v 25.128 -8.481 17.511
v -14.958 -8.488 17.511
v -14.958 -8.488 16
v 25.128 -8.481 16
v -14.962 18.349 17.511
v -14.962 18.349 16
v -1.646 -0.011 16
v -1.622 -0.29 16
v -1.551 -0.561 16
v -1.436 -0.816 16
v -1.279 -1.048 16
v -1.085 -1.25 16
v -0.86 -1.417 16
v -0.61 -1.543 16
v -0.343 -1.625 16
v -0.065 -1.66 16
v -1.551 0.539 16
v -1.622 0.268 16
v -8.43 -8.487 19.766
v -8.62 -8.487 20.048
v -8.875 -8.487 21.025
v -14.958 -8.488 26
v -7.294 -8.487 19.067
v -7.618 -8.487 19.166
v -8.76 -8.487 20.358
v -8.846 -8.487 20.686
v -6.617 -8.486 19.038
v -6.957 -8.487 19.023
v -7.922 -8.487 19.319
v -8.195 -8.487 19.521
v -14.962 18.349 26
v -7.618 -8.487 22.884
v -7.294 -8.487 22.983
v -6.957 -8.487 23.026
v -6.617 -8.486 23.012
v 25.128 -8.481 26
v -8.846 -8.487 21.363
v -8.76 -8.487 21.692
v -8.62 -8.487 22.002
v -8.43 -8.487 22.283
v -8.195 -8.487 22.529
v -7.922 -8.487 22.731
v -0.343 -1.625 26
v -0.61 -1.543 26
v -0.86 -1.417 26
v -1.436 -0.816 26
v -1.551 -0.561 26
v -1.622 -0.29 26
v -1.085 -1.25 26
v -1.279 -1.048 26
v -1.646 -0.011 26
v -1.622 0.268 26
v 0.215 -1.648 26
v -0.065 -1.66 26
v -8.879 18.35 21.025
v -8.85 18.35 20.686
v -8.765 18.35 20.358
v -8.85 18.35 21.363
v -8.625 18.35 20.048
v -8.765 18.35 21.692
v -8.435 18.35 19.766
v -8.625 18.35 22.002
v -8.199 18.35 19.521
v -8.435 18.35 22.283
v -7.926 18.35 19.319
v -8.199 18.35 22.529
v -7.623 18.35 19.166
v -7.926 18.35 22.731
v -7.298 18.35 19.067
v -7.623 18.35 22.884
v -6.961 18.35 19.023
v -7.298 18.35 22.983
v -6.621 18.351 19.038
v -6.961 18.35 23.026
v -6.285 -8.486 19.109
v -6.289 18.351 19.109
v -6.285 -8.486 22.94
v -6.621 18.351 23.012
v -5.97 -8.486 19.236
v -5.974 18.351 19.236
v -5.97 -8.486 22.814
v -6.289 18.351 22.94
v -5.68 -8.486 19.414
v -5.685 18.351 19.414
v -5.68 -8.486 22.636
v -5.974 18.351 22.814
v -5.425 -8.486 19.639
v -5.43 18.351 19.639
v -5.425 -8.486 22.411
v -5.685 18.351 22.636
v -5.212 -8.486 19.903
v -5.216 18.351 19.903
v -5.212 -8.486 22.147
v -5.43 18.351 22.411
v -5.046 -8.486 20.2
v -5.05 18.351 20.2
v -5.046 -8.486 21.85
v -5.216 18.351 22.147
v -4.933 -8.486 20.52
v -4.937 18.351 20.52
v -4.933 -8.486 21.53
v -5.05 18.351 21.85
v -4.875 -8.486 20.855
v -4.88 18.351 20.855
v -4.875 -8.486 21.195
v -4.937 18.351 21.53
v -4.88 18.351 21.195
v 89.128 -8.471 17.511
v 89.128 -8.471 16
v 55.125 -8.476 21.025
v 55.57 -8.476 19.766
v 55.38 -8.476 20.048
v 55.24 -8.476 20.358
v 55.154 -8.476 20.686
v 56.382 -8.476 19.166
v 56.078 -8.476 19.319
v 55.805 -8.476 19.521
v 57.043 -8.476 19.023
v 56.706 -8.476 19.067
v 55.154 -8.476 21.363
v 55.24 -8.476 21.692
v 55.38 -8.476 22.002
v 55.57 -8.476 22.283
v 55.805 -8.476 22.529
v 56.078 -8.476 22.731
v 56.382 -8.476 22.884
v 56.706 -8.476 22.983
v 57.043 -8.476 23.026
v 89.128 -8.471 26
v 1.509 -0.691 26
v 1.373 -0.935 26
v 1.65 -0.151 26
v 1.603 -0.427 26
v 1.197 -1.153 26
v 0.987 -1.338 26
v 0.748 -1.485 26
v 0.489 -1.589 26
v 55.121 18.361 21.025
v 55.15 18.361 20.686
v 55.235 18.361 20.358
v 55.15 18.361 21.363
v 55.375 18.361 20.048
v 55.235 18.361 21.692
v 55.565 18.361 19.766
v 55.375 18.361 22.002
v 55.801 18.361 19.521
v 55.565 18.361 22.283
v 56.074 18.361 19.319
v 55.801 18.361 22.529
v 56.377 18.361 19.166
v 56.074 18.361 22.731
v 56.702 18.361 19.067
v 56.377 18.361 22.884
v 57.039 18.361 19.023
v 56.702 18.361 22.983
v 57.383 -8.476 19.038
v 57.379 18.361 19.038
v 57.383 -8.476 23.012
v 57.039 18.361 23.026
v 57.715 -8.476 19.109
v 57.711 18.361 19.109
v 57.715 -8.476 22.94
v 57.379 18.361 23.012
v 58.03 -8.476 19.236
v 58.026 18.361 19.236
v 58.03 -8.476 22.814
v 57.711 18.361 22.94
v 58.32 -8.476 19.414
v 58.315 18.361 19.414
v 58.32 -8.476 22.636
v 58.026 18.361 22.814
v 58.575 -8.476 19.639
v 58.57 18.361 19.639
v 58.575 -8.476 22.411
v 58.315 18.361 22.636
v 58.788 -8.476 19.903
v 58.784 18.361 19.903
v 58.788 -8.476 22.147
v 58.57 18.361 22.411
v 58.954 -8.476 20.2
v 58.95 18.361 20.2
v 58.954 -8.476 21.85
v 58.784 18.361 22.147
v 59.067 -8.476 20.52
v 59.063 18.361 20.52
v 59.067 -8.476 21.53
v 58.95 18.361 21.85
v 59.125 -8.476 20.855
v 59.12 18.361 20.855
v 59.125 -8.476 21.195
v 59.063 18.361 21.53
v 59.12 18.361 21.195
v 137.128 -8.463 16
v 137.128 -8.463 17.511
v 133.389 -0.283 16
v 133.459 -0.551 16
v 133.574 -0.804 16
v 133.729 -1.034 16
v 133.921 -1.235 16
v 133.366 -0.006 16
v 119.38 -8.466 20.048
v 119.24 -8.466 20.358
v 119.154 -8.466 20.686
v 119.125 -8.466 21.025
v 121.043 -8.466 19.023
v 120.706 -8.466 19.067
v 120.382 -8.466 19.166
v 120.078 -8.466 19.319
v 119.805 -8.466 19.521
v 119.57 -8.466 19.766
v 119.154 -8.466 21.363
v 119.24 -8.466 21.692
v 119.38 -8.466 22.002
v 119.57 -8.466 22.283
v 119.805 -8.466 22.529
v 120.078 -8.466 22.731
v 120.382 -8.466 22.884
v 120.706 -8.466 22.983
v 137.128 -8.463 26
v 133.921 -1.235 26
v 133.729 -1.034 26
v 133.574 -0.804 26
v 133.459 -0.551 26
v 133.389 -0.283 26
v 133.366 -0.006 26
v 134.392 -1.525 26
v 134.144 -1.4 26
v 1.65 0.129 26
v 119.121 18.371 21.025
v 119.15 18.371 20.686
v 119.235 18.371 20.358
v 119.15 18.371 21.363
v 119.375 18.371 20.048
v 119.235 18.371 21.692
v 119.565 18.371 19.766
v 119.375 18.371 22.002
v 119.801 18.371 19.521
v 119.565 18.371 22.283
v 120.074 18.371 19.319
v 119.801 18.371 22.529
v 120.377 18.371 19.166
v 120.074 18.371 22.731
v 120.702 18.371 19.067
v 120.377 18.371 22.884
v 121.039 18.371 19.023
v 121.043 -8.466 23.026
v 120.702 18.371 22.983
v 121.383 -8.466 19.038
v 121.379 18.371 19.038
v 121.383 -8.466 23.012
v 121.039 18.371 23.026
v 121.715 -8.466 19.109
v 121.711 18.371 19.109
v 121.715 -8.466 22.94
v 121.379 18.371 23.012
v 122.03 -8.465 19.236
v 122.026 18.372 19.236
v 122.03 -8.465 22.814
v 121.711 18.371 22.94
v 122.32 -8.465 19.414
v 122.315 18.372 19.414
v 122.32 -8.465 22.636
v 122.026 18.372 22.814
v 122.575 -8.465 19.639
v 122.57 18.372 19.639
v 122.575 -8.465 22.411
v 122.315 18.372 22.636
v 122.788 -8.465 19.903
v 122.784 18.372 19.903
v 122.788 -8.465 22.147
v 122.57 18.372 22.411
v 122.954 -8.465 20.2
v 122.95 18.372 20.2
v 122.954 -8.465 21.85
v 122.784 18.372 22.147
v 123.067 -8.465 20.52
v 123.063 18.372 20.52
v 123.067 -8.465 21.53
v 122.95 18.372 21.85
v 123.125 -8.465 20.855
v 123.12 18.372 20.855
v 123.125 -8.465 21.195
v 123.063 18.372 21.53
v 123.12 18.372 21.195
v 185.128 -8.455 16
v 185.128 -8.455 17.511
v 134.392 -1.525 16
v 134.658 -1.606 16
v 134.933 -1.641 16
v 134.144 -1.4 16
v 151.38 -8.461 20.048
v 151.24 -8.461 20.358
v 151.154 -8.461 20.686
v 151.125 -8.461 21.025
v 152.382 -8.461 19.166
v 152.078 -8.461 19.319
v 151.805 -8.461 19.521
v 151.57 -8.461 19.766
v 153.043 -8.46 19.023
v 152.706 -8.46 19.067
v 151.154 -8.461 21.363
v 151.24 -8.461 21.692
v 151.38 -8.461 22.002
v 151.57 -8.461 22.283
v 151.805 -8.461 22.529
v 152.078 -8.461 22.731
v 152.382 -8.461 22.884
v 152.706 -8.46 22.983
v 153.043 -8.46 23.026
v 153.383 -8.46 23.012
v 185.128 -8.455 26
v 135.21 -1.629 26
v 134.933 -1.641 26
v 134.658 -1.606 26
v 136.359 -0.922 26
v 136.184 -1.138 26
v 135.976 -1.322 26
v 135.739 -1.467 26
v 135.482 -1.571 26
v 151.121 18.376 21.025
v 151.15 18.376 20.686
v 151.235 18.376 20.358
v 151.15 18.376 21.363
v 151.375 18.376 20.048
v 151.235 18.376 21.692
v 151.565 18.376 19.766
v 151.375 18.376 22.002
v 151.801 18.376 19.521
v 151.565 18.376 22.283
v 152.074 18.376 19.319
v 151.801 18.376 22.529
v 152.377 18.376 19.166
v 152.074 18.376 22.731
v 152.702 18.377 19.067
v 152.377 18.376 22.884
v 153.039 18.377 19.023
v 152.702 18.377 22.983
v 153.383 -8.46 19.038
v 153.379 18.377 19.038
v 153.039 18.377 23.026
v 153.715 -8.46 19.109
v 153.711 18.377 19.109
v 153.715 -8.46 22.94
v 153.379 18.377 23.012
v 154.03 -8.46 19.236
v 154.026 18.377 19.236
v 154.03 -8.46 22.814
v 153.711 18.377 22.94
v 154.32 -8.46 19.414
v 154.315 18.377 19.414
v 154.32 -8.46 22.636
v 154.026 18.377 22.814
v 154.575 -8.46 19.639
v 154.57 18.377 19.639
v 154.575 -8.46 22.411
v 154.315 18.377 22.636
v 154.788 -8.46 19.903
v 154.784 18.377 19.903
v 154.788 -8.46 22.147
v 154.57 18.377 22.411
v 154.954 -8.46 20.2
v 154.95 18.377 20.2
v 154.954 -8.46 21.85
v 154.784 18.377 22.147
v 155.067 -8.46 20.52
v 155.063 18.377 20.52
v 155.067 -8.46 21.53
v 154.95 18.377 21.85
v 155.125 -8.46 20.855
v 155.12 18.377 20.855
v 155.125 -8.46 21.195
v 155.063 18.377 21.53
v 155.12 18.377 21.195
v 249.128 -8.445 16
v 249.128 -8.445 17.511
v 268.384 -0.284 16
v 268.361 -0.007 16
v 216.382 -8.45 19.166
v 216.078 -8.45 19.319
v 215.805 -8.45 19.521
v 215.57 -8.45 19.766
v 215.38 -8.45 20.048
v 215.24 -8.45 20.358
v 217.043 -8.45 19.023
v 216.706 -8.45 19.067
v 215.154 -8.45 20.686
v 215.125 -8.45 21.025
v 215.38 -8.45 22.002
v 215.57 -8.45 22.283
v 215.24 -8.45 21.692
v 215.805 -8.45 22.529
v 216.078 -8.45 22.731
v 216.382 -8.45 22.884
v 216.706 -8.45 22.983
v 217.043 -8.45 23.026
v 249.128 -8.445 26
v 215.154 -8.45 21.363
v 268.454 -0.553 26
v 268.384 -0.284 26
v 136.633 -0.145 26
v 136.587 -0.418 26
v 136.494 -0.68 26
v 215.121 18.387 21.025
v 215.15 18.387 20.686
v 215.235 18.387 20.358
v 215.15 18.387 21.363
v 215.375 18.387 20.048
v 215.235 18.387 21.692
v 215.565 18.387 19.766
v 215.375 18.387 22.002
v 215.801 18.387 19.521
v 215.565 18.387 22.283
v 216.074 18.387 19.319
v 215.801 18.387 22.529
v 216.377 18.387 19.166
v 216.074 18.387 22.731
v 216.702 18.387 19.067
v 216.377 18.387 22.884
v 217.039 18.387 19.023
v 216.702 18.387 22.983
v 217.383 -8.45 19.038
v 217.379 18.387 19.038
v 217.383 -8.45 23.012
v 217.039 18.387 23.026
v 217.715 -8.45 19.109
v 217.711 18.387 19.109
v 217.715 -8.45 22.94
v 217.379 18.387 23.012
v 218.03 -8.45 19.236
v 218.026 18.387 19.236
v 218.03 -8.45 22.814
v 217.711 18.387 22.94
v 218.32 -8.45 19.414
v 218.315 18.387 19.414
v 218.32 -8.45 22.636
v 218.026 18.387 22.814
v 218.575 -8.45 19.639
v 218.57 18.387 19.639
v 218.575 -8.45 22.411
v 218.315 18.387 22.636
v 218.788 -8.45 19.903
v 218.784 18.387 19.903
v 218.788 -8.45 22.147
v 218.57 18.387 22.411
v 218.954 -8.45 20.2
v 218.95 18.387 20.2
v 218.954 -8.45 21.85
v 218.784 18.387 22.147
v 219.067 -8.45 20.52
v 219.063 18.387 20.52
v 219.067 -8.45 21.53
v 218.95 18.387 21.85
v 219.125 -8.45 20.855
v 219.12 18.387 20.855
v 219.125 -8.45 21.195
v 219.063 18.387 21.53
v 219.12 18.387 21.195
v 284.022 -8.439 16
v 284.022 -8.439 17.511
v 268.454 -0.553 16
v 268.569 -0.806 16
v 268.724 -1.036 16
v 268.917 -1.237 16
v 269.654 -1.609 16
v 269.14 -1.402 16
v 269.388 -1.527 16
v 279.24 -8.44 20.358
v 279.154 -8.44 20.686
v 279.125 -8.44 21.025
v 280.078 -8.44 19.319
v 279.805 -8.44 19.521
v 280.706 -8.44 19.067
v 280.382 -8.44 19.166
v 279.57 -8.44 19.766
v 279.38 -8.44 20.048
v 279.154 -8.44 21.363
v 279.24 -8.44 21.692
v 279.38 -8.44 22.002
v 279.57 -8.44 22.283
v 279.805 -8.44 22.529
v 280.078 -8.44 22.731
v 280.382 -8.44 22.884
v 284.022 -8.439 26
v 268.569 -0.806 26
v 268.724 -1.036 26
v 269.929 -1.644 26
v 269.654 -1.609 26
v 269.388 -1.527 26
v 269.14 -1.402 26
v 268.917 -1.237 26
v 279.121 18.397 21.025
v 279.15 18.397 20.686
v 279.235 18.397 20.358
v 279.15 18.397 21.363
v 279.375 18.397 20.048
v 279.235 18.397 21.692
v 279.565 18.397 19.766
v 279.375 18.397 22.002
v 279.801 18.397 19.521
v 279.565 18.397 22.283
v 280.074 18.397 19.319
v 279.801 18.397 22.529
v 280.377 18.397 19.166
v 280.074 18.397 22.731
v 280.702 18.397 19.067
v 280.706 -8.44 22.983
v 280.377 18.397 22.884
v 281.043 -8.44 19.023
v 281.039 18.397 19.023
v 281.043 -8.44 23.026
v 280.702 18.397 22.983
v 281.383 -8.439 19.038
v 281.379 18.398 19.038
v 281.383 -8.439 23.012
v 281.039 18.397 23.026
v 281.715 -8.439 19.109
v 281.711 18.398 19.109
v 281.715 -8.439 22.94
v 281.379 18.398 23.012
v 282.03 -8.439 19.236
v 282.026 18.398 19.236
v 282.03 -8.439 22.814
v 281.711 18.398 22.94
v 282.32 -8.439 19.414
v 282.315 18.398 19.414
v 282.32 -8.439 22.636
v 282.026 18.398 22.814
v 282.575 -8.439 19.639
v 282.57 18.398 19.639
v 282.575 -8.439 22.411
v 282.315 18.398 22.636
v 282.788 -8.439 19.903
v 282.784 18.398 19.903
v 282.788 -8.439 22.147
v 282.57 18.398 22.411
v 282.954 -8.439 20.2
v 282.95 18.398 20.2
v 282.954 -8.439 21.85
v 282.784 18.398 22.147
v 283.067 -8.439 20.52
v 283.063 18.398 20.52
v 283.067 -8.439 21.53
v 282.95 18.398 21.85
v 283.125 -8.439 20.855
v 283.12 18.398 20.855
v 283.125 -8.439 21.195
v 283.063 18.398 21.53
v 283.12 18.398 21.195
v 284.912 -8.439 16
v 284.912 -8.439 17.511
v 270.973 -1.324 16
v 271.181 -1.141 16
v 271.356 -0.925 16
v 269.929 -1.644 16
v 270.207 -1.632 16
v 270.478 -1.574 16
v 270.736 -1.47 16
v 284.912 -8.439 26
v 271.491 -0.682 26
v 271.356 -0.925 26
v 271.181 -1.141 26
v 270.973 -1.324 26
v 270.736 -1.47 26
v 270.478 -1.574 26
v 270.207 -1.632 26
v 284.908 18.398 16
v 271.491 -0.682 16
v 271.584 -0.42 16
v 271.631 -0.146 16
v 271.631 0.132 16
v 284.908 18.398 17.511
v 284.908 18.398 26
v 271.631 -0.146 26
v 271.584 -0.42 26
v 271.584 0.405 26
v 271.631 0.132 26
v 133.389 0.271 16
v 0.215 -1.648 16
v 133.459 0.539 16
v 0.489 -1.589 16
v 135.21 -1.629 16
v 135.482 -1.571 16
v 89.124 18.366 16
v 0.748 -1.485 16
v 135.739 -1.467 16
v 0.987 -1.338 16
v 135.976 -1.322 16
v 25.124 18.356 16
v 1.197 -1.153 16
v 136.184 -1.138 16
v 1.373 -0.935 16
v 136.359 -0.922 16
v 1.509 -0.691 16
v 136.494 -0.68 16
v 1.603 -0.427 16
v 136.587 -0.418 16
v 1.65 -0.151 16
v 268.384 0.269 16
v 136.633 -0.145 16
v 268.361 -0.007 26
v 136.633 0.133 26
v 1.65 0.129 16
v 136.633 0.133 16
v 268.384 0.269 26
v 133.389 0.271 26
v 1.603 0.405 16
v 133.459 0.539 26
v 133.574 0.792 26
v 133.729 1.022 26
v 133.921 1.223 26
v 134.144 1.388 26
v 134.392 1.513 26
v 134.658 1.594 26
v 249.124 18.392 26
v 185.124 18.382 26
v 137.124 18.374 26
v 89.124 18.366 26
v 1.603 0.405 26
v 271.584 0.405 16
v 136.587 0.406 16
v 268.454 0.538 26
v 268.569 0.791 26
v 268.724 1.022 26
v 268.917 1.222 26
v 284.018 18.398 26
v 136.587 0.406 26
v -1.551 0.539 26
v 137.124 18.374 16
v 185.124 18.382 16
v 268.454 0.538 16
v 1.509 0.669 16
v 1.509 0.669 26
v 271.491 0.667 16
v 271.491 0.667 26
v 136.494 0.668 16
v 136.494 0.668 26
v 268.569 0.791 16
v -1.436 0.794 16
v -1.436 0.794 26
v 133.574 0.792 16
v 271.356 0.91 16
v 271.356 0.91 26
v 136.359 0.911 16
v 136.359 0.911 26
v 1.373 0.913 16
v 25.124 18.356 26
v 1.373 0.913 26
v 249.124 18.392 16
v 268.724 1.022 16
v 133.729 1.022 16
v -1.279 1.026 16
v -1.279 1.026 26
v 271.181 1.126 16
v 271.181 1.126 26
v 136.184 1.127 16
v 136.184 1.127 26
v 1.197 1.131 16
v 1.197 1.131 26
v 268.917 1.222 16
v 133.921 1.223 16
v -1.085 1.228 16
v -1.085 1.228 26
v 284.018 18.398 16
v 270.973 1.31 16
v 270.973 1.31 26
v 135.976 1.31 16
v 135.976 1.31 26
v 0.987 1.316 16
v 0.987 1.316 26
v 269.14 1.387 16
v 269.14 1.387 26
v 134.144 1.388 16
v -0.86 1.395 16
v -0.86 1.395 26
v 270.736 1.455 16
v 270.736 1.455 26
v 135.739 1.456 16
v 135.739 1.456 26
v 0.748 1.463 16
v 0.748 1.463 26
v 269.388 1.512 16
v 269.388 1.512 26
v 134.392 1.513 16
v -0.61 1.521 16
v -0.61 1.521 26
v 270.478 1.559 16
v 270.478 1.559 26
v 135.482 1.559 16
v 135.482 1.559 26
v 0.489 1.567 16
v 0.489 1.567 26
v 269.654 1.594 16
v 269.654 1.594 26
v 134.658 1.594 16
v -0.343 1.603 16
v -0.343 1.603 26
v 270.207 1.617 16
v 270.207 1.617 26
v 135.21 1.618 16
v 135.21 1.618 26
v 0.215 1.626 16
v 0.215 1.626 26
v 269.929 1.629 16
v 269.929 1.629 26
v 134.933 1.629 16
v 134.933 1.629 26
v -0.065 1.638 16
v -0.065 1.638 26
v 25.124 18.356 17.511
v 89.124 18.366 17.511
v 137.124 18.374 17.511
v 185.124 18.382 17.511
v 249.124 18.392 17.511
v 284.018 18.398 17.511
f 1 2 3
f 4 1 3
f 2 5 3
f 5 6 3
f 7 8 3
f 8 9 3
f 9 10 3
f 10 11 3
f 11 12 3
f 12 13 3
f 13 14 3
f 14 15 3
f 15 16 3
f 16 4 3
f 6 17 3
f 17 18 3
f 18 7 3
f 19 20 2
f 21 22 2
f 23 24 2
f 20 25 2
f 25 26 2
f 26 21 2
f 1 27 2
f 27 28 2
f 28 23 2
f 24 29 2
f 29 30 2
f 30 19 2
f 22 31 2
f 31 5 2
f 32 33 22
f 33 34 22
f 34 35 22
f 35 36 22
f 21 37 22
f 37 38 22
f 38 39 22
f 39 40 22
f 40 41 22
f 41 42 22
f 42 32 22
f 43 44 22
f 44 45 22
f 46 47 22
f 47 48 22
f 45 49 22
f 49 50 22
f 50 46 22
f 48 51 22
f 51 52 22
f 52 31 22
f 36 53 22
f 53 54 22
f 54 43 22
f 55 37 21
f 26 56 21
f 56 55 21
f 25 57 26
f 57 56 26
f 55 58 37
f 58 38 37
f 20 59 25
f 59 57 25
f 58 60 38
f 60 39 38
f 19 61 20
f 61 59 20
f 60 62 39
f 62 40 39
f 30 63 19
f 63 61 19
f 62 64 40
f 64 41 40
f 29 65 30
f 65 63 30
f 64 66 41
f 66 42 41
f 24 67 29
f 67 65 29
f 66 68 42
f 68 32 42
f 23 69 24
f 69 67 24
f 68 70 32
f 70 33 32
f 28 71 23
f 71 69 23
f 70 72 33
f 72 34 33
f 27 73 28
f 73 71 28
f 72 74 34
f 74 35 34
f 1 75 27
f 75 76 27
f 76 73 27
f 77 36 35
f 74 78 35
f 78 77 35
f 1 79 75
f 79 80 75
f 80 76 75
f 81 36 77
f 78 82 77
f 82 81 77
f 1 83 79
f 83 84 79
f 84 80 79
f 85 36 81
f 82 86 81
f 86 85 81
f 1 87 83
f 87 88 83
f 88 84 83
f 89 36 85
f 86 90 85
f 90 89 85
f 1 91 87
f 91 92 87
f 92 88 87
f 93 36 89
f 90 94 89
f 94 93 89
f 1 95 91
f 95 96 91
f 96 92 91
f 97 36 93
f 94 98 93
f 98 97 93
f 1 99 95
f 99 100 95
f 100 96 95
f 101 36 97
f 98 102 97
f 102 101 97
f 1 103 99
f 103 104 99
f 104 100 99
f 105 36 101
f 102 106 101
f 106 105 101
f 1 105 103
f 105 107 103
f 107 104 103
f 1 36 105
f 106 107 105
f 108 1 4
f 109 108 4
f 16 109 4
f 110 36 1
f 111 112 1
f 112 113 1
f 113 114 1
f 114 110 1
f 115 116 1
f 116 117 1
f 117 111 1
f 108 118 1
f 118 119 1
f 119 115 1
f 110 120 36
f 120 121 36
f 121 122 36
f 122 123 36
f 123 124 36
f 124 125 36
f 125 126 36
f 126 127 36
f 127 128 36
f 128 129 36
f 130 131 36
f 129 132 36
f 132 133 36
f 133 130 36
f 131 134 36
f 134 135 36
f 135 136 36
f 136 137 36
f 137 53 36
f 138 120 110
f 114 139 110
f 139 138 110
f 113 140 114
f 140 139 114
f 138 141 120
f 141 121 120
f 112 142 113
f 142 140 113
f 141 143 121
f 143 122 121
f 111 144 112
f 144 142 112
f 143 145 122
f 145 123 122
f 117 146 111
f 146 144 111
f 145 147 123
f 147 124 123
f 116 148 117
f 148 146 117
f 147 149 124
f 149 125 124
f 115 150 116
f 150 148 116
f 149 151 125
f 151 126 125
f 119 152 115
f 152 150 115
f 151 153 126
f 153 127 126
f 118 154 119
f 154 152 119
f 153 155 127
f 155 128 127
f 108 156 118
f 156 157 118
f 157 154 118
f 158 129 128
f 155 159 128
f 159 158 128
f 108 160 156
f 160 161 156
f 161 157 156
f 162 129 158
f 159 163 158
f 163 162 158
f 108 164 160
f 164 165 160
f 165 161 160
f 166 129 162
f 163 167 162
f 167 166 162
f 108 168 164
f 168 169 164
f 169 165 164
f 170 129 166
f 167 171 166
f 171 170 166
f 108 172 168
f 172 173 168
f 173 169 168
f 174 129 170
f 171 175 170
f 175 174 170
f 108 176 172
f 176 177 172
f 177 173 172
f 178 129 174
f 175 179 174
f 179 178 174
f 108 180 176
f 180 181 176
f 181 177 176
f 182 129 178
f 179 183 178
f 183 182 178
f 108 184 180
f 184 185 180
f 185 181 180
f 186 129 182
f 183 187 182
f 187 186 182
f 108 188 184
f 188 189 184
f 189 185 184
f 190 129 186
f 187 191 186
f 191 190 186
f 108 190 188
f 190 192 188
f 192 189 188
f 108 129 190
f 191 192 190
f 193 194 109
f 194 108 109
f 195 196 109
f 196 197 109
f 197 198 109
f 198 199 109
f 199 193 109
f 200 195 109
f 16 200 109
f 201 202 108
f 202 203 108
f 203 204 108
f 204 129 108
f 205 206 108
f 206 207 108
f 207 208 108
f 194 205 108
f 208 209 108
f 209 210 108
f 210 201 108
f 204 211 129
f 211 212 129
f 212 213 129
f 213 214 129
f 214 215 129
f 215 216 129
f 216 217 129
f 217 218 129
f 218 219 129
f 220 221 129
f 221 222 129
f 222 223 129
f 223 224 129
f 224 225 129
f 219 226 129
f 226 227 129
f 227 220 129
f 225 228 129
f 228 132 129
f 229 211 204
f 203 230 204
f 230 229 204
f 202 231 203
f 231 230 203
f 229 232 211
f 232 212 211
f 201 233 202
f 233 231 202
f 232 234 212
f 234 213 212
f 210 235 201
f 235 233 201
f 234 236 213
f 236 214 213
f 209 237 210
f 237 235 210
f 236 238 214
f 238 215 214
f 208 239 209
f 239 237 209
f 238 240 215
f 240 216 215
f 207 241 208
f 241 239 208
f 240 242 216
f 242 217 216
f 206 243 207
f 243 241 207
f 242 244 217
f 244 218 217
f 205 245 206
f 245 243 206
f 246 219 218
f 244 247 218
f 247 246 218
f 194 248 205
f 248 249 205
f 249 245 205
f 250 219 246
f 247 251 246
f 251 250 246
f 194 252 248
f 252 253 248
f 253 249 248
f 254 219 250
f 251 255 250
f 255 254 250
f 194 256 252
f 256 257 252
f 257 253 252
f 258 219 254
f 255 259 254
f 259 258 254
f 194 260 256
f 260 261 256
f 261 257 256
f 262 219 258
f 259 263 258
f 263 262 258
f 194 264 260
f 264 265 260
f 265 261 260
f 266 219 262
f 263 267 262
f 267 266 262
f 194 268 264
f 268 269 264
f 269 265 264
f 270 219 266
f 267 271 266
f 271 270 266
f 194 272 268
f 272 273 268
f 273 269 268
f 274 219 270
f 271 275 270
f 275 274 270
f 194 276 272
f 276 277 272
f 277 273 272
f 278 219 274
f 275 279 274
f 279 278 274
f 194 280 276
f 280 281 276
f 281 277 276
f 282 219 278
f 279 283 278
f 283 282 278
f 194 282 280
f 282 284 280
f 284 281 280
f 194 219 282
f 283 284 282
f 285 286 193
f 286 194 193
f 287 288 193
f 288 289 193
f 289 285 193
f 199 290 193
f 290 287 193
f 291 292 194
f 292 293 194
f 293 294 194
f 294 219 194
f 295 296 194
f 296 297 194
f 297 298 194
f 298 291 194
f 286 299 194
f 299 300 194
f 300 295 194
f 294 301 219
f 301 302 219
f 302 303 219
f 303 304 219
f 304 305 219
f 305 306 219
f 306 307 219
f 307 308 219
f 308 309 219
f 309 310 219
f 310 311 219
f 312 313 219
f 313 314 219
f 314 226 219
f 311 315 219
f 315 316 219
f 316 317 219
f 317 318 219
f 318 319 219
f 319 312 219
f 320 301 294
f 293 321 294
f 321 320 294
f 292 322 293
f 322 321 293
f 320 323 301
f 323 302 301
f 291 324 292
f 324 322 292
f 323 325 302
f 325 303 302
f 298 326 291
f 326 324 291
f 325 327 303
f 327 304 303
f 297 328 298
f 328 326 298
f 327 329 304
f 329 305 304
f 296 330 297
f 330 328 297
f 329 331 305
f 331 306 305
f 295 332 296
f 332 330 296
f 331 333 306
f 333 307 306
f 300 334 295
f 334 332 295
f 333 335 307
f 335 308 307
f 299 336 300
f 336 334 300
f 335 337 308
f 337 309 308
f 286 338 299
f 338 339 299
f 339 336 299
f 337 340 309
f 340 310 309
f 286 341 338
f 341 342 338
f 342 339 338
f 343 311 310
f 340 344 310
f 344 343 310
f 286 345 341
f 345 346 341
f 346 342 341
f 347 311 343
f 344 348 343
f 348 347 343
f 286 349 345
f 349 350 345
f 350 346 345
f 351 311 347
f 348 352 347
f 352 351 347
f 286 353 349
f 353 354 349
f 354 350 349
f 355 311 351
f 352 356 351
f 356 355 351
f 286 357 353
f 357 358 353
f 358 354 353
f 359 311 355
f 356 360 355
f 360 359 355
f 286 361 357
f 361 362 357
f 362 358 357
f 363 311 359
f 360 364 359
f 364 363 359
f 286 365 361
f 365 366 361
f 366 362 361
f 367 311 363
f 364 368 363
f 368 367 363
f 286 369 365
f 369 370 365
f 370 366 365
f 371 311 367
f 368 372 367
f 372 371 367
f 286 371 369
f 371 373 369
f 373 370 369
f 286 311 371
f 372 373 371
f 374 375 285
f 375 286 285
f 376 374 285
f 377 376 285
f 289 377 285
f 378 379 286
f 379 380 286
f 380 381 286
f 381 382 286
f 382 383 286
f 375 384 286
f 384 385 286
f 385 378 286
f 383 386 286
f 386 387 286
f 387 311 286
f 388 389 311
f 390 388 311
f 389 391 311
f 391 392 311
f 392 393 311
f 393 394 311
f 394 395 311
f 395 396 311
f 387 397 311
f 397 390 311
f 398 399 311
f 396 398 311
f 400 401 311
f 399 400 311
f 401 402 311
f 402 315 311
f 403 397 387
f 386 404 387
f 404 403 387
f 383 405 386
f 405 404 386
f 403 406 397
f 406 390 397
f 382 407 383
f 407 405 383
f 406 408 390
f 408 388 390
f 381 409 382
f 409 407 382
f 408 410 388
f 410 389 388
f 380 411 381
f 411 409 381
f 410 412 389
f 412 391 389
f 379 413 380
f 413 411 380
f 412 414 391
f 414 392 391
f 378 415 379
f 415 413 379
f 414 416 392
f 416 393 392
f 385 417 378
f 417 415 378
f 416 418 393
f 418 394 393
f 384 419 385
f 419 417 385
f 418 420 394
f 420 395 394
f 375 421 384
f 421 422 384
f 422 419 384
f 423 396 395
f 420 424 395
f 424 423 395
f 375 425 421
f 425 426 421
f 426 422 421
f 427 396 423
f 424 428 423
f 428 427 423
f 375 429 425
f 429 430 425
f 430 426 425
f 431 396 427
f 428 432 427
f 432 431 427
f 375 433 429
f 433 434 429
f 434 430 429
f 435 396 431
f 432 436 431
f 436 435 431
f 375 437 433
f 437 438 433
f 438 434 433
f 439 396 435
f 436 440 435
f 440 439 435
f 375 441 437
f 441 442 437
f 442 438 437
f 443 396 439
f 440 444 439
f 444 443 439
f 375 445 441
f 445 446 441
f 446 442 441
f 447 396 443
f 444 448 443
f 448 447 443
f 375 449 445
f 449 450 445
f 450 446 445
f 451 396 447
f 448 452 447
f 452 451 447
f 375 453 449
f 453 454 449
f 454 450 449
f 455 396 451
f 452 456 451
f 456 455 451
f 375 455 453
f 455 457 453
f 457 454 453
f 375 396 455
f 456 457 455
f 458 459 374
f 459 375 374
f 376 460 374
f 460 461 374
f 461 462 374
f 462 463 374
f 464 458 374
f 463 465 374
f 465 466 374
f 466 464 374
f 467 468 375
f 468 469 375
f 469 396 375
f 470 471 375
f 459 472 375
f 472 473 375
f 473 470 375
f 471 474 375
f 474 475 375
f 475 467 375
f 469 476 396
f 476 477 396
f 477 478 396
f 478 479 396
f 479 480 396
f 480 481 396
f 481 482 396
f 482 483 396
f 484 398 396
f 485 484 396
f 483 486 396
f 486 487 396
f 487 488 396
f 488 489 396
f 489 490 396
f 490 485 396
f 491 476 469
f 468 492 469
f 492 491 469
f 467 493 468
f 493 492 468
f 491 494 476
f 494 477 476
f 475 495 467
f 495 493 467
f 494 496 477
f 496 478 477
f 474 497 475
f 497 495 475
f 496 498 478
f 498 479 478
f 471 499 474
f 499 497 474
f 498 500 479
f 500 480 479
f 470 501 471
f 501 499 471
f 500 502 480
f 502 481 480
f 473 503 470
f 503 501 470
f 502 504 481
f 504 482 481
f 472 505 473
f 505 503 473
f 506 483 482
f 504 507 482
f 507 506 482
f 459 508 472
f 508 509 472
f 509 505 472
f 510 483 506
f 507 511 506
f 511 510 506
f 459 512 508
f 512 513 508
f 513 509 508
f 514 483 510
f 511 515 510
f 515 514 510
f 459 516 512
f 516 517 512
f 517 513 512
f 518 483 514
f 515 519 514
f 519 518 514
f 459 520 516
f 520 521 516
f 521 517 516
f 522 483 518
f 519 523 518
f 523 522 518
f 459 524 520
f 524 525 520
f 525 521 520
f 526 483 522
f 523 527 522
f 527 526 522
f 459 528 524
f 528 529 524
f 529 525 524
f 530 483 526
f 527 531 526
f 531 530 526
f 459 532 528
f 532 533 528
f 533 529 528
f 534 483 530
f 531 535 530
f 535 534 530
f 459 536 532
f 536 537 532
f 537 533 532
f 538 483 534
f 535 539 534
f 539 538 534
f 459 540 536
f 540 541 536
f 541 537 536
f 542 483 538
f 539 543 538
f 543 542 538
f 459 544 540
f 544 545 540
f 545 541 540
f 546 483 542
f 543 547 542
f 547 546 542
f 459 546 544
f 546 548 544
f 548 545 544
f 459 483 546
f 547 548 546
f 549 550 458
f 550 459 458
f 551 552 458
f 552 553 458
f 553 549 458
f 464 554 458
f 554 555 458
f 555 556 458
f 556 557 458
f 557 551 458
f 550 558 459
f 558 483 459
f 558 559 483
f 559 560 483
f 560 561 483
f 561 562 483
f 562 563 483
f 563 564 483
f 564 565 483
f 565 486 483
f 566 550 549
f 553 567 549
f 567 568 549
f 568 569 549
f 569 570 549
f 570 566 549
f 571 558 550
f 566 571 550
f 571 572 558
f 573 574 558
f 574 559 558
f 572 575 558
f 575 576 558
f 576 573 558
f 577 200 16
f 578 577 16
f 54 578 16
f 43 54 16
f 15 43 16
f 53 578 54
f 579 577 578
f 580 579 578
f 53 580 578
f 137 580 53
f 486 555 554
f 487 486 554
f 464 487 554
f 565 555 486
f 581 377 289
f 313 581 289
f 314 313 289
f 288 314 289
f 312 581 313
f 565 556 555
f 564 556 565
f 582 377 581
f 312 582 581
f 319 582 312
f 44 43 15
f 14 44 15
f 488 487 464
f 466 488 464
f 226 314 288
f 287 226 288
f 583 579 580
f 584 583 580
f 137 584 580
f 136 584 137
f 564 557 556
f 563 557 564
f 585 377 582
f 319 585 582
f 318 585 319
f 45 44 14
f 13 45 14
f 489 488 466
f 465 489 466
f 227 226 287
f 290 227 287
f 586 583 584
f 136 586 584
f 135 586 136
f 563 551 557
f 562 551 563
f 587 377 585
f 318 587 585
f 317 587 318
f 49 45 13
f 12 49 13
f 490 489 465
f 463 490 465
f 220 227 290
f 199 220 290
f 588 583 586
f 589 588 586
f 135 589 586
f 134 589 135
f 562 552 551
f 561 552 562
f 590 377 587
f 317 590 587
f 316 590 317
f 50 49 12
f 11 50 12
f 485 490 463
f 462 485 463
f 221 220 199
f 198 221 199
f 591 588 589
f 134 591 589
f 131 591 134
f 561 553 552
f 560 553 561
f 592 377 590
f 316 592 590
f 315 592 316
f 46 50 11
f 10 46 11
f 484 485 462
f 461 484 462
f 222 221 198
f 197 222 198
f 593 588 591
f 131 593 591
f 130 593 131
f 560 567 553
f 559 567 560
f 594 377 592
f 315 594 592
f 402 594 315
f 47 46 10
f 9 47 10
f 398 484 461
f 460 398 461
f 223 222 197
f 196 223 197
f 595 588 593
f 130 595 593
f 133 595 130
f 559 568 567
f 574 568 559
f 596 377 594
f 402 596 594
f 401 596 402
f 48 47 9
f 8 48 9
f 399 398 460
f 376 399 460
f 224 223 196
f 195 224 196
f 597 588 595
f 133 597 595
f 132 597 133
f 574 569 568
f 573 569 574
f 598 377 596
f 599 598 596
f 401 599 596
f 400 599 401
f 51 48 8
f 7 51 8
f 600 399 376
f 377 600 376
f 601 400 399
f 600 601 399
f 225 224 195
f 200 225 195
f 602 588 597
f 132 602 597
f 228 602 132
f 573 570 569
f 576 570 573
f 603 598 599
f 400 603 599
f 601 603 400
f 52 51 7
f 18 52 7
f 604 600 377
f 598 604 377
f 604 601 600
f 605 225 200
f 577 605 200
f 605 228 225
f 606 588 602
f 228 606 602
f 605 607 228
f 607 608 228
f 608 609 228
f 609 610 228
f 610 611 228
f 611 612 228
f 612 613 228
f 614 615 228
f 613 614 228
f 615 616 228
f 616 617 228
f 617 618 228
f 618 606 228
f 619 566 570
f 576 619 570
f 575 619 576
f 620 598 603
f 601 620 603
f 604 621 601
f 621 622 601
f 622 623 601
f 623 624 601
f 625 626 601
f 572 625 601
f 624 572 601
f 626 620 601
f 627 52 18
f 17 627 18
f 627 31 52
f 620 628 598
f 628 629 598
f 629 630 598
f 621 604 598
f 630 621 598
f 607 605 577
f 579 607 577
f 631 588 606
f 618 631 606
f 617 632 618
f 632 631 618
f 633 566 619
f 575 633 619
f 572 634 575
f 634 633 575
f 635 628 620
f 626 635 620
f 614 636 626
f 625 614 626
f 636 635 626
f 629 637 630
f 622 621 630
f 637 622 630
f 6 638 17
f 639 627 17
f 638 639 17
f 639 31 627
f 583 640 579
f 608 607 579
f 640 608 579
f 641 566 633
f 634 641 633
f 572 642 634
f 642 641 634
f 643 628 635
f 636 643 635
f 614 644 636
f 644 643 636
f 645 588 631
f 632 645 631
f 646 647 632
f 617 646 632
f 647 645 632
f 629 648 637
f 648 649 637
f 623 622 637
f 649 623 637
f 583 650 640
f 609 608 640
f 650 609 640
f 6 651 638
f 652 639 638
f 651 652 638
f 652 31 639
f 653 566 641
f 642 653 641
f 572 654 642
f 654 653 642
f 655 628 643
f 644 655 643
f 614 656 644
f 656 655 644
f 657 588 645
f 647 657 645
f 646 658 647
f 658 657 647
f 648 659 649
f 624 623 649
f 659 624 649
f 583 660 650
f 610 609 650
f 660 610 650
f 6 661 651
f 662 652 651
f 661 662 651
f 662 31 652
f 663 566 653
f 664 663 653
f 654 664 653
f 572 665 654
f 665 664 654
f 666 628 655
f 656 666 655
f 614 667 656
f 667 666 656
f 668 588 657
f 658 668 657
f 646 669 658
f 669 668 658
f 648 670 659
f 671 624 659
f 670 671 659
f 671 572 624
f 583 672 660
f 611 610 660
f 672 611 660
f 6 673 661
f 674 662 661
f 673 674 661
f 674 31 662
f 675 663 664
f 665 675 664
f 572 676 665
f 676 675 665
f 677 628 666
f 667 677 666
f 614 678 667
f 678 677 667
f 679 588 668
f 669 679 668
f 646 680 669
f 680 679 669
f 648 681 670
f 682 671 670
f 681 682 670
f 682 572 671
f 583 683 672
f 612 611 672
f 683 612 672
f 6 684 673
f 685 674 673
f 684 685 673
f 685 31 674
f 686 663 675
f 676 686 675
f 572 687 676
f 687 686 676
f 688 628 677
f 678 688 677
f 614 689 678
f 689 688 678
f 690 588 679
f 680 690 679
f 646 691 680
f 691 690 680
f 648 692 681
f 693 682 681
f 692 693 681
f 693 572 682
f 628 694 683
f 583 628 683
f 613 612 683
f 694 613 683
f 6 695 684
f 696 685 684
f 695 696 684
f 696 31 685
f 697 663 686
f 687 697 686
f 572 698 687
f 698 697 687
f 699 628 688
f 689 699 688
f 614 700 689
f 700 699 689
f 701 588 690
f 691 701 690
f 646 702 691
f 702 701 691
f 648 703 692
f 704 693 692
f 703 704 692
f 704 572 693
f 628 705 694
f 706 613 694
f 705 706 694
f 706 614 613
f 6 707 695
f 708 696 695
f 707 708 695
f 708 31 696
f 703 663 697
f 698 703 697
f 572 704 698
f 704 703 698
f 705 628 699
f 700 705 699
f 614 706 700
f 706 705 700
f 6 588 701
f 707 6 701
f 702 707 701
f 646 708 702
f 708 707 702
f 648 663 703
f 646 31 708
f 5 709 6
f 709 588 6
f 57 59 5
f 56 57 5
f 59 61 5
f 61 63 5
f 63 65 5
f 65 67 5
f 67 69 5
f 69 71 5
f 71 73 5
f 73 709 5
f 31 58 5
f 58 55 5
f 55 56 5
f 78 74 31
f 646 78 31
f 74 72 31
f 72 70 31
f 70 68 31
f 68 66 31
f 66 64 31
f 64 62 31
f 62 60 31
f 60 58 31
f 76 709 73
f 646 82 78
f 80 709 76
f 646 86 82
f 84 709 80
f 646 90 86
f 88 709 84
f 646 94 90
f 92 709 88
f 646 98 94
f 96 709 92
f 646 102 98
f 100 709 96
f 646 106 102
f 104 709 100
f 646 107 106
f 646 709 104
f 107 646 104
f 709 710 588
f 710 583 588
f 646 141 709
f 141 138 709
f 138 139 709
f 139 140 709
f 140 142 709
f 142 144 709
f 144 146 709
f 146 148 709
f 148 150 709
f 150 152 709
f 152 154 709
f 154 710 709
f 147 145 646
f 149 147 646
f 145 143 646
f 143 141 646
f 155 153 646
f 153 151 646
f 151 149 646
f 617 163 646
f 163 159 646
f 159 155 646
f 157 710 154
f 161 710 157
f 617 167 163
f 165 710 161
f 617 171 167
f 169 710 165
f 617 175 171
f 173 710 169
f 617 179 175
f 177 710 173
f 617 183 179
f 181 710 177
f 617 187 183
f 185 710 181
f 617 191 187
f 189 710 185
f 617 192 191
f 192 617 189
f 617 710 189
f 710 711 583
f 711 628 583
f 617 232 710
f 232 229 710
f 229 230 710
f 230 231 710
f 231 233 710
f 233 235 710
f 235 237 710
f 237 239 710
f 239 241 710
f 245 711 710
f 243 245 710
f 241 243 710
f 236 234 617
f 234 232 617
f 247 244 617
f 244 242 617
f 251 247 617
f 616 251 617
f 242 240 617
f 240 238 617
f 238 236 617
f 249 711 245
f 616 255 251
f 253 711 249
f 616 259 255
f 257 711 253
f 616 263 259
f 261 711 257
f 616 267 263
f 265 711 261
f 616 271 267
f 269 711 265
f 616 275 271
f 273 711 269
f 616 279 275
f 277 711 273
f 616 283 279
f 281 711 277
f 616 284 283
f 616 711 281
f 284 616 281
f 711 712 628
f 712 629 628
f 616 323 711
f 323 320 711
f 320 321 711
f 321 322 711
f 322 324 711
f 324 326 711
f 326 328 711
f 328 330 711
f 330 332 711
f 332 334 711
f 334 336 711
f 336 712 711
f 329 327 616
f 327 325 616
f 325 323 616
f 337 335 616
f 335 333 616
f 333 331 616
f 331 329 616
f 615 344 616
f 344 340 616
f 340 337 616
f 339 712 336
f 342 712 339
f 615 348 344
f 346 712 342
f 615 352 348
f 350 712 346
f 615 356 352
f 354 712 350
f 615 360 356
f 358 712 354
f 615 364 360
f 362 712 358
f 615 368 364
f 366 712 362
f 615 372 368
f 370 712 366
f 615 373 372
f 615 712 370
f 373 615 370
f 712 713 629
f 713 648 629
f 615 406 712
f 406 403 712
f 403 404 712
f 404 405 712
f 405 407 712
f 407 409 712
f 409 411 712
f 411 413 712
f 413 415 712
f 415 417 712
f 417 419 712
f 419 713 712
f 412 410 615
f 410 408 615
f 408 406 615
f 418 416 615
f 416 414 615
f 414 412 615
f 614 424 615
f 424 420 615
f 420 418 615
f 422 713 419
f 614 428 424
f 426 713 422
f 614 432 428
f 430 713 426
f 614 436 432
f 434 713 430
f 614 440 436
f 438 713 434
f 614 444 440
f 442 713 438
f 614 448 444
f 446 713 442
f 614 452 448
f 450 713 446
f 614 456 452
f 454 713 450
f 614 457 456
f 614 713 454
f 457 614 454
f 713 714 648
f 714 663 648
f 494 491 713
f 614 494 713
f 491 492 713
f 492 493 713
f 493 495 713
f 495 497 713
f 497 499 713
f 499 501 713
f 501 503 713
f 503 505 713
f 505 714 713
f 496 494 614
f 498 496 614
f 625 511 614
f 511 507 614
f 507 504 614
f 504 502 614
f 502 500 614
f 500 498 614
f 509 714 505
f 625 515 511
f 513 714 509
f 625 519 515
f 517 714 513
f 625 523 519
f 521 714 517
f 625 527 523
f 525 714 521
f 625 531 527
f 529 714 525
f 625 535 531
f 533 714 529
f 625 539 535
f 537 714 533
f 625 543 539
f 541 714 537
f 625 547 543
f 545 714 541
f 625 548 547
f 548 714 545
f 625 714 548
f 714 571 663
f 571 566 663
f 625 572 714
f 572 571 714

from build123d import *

# Parameters (mm, degrees)
BOSS_EXTRUDE2_DEPTH = 10
SKETCH6_R           = 1.636760028
CUT_EXTRUDE1_DEPTH  = 27
SKETCH7_R           = 1.638016743
CUT_EXTRUDE2_DEPTH  = 27
SKETCH8_R           = 1.650737017
CUT_EXTRUDE3_DEPTH  = 27
SKETCH14_R          = 2.003260407
CUT_EXTRUDE4_DEPTH  = 27


with BuildPart() as part:
    # Sketch2 → Boss-Extrude2 (new body)
    with BuildSketch(Plane.XY.offset(16)):
        Polygon((-14.961915992, 18.349138456), (-14.957534249, -8.487840275), (284.912453053, -8.438879726), (284.90807131, 18.398099005), align=None)
    extrude(amount=BOSS_EXTRUDE2_DEPTH)

    # Sketch6 → Cut-Extrude1 (cut)
    with BuildSketch(Plane(origin=(0, 0, 16), x_dir=(-1, 0, 0), z_dir=(0, 0, -1))):
        with Locations((-135.00258755, -0.00593878)):
            Circle(SKETCH6_R)
    extrude(amount=-CUT_EXTRUDE1_DEPTH, mode=Mode.SUBTRACT)

    # Sketch7 → Cut-Extrude2 (cut)
    with BuildSketch(Plane(origin=(0, 0, 16), x_dir=(-1, 0, 0), z_dir=(0, 0, -1))):
        with Locations((-269.998815676, -0.007408264)):
            Circle(SKETCH7_R)
    extrude(amount=-CUT_EXTRUDE2_DEPTH, mode=Mode.SUBTRACT)

    # Sketch8 → Cut-Extrude3 (cut)
    with BuildSketch(Plane(origin=(0, 0, 16), x_dir=(-1, 0, 0), z_dir=(0, 0, -1))):
        with Locations((-0.005146572, -0.011071128)):
            Circle(SKETCH8_R)
    extrude(amount=-CUT_EXTRUDE3_DEPTH, mode=Mode.SUBTRACT)

    # Sketch14 → Cut-Extrude4 (cut)
    with BuildSketch(Plane(origin=(-0.00299631, 18.351580838, 0), x_dir=(0.9999999866710311, 0.00016327258684284348, 0), z_dir=(-0.00016327258684284348, 0.9999999866710311, 0))):
        with Locations(Location((-6.872916807, -21.024902159, 0), (0, 0, 180))):
            Circle(SKETCH14_R)
        with Locations(Location((57.127083193, -21.024902159, 0), (0, 0, 180))):
            Circle(SKETCH14_R)
        with Locations(Location((121.127083193, -21.024902159, 0), (0, 0, 180))):
            Circle(SKETCH14_R)
        with Locations(Location((153.127083193, -21.024902159, 0), (0, 0, 180))):
            Circle(SKETCH14_R)
        with Locations(Location((217.127083193, -21.024902159, 0), (0, 0, 180))):
            Circle(SKETCH14_R)
        with Locations(Location((281.127083193, -21.024902159, 0), (0, 0, 180))):
            Circle(SKETCH14_R)
    extrude(amount=-CUT_EXTRUDE4_DEPTH, mode=Mode.SUBTRACT)


solid = part.part
